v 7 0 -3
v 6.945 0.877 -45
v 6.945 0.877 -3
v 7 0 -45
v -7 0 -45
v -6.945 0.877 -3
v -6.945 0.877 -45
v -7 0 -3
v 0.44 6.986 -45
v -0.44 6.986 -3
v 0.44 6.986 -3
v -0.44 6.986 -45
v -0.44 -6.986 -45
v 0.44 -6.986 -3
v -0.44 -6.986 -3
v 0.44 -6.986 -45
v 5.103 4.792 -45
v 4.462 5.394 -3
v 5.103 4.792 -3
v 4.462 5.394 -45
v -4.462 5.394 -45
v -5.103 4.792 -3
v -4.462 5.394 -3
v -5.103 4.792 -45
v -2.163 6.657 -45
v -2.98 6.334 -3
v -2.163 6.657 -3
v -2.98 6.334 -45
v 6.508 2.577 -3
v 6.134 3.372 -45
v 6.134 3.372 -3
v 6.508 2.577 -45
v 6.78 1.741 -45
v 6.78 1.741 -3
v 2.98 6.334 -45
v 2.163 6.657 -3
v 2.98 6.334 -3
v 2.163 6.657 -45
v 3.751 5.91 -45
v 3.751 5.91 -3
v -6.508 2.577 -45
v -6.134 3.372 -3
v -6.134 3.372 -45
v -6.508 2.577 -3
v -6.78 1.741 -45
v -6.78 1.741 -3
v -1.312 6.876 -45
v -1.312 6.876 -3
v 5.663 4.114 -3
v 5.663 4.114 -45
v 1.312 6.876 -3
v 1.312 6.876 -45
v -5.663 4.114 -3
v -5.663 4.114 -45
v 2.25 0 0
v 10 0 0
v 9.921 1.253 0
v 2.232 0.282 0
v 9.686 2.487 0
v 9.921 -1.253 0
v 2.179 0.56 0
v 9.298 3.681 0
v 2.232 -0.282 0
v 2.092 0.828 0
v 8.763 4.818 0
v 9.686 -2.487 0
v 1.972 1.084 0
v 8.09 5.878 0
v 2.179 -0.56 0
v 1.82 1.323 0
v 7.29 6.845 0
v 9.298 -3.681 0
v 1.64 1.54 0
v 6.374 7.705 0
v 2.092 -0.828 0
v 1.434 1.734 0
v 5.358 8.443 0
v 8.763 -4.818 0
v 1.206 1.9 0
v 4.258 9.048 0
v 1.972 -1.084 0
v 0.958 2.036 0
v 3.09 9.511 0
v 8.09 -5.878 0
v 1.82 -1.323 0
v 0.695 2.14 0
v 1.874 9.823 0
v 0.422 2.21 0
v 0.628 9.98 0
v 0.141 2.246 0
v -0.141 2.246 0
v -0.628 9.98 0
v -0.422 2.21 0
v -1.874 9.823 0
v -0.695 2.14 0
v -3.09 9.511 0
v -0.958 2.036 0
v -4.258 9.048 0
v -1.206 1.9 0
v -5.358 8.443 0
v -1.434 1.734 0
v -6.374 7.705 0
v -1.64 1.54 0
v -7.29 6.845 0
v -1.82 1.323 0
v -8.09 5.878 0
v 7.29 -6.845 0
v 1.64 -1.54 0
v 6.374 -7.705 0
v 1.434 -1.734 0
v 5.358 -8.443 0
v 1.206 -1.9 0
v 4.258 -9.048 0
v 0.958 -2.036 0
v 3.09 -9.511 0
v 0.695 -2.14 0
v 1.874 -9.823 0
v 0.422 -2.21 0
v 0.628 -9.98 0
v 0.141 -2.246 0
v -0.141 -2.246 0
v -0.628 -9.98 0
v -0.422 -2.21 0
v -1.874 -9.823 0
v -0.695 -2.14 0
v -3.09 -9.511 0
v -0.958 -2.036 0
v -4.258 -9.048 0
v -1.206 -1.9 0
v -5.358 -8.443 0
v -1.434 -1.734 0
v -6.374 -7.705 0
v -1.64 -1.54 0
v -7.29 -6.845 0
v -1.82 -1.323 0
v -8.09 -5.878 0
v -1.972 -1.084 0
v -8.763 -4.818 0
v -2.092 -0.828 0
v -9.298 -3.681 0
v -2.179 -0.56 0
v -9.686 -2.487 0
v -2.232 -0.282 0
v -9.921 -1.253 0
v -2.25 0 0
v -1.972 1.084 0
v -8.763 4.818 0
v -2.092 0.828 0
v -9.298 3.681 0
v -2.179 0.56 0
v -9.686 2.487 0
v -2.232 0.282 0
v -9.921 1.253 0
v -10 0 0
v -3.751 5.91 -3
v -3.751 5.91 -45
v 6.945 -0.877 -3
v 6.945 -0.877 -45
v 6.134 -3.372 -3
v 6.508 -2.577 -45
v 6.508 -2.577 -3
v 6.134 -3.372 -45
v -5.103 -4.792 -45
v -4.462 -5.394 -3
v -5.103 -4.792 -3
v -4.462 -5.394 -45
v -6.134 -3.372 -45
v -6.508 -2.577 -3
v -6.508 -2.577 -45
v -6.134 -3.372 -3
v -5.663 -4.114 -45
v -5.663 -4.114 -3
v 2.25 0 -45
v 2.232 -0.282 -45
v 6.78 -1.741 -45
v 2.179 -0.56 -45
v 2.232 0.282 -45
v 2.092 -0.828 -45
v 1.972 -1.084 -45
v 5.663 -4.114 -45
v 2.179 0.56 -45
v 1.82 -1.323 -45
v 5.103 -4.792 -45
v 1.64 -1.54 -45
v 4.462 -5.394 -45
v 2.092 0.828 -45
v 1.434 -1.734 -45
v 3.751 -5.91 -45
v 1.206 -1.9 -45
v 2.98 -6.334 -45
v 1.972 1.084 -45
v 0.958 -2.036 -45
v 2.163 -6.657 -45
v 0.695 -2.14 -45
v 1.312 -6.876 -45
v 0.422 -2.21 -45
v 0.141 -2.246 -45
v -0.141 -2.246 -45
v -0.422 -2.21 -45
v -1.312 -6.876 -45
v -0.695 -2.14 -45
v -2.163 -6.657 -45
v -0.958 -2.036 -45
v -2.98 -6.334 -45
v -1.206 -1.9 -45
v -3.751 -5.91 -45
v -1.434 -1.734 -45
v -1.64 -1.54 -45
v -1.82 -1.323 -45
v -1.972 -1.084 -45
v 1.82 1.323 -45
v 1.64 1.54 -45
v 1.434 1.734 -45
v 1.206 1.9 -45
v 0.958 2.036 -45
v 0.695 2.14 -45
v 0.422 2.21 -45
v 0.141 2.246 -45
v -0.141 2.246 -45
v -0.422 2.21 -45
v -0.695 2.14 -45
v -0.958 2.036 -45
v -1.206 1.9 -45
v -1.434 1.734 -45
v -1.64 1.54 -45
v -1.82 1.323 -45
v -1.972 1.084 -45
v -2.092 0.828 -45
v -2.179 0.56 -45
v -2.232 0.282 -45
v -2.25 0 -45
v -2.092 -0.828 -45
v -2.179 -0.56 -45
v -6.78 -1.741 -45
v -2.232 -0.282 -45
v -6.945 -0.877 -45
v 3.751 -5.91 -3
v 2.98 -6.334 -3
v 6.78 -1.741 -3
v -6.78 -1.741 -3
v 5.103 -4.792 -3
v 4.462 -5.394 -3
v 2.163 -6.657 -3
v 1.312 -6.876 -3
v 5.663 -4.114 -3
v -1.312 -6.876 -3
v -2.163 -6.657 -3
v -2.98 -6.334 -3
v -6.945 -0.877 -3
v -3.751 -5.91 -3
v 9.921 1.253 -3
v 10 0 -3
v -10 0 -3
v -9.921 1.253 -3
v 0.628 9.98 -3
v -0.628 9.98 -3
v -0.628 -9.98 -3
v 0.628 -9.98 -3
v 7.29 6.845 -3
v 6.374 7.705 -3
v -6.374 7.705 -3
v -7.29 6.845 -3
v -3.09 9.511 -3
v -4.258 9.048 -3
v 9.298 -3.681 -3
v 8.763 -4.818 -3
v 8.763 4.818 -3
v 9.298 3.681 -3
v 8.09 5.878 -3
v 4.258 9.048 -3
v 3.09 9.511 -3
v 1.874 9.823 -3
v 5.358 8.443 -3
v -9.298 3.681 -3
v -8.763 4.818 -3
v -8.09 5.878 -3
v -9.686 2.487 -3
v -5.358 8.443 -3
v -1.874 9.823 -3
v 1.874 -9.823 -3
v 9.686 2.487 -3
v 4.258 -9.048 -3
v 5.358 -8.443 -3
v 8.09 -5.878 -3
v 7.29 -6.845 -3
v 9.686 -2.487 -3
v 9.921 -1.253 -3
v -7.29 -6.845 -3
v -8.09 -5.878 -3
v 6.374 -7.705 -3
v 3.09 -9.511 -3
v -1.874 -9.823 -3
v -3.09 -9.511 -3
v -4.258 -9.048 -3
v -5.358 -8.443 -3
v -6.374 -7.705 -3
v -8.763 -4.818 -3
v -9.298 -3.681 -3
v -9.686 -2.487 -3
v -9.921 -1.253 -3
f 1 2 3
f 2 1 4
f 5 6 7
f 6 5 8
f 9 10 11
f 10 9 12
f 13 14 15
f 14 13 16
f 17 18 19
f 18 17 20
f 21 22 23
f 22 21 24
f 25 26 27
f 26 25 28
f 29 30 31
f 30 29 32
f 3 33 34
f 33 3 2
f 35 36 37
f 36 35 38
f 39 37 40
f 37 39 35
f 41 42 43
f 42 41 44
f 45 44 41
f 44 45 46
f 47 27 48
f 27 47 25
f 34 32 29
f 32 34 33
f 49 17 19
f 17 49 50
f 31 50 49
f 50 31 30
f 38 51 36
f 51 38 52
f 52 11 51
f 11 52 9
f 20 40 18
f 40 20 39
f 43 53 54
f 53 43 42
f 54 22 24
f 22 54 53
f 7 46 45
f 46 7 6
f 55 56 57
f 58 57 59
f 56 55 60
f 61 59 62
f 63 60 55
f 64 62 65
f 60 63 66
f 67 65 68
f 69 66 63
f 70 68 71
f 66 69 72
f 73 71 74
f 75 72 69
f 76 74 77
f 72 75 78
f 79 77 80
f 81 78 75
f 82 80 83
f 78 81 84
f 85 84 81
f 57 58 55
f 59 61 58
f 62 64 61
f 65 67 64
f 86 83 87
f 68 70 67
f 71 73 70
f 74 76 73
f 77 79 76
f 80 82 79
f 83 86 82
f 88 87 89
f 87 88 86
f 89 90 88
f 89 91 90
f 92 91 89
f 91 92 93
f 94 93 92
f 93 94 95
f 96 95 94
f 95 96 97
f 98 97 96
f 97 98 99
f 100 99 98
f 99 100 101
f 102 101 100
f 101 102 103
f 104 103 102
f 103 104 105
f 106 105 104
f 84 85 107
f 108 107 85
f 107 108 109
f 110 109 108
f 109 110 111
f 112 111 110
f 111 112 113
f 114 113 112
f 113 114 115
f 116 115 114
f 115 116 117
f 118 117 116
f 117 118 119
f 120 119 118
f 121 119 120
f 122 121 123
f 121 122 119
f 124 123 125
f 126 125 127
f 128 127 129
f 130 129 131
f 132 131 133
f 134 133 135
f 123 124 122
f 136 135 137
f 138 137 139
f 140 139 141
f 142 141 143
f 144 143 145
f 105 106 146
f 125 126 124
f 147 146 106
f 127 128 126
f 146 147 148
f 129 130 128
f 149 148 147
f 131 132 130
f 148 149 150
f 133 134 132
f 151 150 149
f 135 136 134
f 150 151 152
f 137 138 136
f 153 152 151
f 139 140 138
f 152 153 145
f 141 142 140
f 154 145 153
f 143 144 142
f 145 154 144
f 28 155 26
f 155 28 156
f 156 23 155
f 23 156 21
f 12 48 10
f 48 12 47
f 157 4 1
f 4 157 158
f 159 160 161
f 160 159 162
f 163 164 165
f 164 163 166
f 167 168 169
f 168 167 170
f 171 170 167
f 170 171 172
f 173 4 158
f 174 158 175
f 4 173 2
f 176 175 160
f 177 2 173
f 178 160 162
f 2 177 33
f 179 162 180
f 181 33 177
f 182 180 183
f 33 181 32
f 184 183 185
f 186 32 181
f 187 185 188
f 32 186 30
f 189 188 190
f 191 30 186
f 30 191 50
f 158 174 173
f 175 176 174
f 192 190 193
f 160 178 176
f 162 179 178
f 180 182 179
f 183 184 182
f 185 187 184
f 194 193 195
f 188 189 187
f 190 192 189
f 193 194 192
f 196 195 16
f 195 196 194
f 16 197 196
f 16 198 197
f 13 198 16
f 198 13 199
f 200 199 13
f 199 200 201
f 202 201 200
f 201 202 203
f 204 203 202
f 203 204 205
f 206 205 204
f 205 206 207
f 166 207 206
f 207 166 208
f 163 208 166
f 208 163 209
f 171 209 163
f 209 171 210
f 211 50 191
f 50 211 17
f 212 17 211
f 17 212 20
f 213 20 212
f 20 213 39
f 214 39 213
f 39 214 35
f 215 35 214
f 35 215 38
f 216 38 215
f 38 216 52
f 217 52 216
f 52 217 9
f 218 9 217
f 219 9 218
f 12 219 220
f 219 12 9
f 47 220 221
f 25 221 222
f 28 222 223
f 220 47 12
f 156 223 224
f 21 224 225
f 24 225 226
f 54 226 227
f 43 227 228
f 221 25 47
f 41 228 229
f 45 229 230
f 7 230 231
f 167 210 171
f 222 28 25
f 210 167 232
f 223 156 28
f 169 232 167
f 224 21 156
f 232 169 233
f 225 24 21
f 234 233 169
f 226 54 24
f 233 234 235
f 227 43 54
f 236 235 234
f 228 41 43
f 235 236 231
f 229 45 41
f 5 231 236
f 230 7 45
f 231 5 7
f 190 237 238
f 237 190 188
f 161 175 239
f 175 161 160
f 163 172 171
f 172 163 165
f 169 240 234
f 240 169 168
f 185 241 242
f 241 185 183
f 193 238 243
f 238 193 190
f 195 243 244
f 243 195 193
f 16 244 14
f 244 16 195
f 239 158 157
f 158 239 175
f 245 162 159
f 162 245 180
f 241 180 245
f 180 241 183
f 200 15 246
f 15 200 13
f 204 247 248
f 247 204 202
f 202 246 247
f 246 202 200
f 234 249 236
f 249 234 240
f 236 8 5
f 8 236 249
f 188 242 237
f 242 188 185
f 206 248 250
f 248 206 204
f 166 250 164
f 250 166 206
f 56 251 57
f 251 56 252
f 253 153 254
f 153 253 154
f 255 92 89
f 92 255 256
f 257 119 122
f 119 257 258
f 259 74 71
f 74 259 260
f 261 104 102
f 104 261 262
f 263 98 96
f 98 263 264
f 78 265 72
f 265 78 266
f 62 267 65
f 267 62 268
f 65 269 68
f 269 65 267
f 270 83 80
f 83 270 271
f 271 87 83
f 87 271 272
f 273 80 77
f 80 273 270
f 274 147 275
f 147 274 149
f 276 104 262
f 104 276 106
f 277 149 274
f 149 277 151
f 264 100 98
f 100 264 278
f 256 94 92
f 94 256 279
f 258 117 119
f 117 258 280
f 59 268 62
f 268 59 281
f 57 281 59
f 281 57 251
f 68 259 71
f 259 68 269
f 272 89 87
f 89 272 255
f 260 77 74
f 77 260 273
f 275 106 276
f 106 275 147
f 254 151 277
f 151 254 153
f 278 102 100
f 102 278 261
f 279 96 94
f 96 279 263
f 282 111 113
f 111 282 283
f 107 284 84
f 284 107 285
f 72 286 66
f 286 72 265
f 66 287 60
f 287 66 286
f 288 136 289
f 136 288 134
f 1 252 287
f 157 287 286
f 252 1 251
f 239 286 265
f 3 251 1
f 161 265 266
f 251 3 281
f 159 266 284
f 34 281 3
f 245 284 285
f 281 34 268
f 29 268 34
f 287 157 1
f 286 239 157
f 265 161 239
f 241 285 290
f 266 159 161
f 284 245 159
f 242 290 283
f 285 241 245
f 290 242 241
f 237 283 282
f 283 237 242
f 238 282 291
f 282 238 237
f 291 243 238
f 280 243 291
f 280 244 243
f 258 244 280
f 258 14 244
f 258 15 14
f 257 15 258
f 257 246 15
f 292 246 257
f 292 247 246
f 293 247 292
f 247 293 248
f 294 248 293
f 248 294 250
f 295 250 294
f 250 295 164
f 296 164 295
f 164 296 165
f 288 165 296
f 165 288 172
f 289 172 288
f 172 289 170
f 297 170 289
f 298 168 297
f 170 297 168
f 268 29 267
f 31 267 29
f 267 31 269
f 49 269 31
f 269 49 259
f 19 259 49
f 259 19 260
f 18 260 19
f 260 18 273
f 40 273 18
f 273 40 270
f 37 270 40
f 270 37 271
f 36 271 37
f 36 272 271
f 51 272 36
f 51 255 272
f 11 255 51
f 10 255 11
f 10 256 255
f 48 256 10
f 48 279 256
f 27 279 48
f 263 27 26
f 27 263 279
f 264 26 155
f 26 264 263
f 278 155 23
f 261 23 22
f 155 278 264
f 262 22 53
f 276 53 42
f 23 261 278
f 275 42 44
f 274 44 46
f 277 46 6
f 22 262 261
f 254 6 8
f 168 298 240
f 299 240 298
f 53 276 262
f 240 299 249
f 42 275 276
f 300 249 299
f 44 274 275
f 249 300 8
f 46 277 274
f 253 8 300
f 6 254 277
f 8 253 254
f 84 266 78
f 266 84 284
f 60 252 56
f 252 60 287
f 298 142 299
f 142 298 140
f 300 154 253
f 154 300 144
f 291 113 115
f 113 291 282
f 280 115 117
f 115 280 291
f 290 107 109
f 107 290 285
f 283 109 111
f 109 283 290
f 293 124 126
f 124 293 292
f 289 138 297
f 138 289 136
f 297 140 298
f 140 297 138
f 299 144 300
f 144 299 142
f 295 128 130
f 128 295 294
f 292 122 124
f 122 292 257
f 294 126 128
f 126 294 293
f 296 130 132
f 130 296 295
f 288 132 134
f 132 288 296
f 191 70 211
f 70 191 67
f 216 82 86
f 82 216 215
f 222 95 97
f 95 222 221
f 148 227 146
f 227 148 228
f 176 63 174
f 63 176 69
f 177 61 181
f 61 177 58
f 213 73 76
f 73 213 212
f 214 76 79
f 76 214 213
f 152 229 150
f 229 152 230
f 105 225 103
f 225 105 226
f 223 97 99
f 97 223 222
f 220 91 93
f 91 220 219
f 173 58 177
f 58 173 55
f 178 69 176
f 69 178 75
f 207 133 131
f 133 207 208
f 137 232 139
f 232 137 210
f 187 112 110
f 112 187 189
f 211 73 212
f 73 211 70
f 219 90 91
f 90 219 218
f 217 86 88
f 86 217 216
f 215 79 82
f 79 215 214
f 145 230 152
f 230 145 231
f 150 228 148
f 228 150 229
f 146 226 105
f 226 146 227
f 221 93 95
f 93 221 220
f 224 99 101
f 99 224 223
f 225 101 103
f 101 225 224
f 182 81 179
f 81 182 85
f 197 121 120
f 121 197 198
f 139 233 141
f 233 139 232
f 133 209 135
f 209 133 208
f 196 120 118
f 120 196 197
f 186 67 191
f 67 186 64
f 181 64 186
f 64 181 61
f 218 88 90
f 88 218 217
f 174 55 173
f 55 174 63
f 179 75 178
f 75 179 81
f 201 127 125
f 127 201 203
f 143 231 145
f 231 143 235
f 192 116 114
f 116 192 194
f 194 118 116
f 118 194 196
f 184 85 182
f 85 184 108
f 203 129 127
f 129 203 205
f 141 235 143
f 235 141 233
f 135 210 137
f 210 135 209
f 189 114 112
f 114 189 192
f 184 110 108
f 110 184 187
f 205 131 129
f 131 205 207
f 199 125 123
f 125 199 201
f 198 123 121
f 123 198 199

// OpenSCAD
$fn = 50;


difference() {
	union() {
		translate(v = [0, 0, -45.0000000000]) {
			cylinder(h = 45, r = 7.0000000000);
		}
		translate(v = [0, 0, -3.0000000000]) {
			cylinder(h = 3, r = 10.0000000000);
		}
	}
	union() {
		#translate(v = [0, 0, -45]) {
			cylinder(h = 45, r = 2.2500000000);
		}
	}
}
